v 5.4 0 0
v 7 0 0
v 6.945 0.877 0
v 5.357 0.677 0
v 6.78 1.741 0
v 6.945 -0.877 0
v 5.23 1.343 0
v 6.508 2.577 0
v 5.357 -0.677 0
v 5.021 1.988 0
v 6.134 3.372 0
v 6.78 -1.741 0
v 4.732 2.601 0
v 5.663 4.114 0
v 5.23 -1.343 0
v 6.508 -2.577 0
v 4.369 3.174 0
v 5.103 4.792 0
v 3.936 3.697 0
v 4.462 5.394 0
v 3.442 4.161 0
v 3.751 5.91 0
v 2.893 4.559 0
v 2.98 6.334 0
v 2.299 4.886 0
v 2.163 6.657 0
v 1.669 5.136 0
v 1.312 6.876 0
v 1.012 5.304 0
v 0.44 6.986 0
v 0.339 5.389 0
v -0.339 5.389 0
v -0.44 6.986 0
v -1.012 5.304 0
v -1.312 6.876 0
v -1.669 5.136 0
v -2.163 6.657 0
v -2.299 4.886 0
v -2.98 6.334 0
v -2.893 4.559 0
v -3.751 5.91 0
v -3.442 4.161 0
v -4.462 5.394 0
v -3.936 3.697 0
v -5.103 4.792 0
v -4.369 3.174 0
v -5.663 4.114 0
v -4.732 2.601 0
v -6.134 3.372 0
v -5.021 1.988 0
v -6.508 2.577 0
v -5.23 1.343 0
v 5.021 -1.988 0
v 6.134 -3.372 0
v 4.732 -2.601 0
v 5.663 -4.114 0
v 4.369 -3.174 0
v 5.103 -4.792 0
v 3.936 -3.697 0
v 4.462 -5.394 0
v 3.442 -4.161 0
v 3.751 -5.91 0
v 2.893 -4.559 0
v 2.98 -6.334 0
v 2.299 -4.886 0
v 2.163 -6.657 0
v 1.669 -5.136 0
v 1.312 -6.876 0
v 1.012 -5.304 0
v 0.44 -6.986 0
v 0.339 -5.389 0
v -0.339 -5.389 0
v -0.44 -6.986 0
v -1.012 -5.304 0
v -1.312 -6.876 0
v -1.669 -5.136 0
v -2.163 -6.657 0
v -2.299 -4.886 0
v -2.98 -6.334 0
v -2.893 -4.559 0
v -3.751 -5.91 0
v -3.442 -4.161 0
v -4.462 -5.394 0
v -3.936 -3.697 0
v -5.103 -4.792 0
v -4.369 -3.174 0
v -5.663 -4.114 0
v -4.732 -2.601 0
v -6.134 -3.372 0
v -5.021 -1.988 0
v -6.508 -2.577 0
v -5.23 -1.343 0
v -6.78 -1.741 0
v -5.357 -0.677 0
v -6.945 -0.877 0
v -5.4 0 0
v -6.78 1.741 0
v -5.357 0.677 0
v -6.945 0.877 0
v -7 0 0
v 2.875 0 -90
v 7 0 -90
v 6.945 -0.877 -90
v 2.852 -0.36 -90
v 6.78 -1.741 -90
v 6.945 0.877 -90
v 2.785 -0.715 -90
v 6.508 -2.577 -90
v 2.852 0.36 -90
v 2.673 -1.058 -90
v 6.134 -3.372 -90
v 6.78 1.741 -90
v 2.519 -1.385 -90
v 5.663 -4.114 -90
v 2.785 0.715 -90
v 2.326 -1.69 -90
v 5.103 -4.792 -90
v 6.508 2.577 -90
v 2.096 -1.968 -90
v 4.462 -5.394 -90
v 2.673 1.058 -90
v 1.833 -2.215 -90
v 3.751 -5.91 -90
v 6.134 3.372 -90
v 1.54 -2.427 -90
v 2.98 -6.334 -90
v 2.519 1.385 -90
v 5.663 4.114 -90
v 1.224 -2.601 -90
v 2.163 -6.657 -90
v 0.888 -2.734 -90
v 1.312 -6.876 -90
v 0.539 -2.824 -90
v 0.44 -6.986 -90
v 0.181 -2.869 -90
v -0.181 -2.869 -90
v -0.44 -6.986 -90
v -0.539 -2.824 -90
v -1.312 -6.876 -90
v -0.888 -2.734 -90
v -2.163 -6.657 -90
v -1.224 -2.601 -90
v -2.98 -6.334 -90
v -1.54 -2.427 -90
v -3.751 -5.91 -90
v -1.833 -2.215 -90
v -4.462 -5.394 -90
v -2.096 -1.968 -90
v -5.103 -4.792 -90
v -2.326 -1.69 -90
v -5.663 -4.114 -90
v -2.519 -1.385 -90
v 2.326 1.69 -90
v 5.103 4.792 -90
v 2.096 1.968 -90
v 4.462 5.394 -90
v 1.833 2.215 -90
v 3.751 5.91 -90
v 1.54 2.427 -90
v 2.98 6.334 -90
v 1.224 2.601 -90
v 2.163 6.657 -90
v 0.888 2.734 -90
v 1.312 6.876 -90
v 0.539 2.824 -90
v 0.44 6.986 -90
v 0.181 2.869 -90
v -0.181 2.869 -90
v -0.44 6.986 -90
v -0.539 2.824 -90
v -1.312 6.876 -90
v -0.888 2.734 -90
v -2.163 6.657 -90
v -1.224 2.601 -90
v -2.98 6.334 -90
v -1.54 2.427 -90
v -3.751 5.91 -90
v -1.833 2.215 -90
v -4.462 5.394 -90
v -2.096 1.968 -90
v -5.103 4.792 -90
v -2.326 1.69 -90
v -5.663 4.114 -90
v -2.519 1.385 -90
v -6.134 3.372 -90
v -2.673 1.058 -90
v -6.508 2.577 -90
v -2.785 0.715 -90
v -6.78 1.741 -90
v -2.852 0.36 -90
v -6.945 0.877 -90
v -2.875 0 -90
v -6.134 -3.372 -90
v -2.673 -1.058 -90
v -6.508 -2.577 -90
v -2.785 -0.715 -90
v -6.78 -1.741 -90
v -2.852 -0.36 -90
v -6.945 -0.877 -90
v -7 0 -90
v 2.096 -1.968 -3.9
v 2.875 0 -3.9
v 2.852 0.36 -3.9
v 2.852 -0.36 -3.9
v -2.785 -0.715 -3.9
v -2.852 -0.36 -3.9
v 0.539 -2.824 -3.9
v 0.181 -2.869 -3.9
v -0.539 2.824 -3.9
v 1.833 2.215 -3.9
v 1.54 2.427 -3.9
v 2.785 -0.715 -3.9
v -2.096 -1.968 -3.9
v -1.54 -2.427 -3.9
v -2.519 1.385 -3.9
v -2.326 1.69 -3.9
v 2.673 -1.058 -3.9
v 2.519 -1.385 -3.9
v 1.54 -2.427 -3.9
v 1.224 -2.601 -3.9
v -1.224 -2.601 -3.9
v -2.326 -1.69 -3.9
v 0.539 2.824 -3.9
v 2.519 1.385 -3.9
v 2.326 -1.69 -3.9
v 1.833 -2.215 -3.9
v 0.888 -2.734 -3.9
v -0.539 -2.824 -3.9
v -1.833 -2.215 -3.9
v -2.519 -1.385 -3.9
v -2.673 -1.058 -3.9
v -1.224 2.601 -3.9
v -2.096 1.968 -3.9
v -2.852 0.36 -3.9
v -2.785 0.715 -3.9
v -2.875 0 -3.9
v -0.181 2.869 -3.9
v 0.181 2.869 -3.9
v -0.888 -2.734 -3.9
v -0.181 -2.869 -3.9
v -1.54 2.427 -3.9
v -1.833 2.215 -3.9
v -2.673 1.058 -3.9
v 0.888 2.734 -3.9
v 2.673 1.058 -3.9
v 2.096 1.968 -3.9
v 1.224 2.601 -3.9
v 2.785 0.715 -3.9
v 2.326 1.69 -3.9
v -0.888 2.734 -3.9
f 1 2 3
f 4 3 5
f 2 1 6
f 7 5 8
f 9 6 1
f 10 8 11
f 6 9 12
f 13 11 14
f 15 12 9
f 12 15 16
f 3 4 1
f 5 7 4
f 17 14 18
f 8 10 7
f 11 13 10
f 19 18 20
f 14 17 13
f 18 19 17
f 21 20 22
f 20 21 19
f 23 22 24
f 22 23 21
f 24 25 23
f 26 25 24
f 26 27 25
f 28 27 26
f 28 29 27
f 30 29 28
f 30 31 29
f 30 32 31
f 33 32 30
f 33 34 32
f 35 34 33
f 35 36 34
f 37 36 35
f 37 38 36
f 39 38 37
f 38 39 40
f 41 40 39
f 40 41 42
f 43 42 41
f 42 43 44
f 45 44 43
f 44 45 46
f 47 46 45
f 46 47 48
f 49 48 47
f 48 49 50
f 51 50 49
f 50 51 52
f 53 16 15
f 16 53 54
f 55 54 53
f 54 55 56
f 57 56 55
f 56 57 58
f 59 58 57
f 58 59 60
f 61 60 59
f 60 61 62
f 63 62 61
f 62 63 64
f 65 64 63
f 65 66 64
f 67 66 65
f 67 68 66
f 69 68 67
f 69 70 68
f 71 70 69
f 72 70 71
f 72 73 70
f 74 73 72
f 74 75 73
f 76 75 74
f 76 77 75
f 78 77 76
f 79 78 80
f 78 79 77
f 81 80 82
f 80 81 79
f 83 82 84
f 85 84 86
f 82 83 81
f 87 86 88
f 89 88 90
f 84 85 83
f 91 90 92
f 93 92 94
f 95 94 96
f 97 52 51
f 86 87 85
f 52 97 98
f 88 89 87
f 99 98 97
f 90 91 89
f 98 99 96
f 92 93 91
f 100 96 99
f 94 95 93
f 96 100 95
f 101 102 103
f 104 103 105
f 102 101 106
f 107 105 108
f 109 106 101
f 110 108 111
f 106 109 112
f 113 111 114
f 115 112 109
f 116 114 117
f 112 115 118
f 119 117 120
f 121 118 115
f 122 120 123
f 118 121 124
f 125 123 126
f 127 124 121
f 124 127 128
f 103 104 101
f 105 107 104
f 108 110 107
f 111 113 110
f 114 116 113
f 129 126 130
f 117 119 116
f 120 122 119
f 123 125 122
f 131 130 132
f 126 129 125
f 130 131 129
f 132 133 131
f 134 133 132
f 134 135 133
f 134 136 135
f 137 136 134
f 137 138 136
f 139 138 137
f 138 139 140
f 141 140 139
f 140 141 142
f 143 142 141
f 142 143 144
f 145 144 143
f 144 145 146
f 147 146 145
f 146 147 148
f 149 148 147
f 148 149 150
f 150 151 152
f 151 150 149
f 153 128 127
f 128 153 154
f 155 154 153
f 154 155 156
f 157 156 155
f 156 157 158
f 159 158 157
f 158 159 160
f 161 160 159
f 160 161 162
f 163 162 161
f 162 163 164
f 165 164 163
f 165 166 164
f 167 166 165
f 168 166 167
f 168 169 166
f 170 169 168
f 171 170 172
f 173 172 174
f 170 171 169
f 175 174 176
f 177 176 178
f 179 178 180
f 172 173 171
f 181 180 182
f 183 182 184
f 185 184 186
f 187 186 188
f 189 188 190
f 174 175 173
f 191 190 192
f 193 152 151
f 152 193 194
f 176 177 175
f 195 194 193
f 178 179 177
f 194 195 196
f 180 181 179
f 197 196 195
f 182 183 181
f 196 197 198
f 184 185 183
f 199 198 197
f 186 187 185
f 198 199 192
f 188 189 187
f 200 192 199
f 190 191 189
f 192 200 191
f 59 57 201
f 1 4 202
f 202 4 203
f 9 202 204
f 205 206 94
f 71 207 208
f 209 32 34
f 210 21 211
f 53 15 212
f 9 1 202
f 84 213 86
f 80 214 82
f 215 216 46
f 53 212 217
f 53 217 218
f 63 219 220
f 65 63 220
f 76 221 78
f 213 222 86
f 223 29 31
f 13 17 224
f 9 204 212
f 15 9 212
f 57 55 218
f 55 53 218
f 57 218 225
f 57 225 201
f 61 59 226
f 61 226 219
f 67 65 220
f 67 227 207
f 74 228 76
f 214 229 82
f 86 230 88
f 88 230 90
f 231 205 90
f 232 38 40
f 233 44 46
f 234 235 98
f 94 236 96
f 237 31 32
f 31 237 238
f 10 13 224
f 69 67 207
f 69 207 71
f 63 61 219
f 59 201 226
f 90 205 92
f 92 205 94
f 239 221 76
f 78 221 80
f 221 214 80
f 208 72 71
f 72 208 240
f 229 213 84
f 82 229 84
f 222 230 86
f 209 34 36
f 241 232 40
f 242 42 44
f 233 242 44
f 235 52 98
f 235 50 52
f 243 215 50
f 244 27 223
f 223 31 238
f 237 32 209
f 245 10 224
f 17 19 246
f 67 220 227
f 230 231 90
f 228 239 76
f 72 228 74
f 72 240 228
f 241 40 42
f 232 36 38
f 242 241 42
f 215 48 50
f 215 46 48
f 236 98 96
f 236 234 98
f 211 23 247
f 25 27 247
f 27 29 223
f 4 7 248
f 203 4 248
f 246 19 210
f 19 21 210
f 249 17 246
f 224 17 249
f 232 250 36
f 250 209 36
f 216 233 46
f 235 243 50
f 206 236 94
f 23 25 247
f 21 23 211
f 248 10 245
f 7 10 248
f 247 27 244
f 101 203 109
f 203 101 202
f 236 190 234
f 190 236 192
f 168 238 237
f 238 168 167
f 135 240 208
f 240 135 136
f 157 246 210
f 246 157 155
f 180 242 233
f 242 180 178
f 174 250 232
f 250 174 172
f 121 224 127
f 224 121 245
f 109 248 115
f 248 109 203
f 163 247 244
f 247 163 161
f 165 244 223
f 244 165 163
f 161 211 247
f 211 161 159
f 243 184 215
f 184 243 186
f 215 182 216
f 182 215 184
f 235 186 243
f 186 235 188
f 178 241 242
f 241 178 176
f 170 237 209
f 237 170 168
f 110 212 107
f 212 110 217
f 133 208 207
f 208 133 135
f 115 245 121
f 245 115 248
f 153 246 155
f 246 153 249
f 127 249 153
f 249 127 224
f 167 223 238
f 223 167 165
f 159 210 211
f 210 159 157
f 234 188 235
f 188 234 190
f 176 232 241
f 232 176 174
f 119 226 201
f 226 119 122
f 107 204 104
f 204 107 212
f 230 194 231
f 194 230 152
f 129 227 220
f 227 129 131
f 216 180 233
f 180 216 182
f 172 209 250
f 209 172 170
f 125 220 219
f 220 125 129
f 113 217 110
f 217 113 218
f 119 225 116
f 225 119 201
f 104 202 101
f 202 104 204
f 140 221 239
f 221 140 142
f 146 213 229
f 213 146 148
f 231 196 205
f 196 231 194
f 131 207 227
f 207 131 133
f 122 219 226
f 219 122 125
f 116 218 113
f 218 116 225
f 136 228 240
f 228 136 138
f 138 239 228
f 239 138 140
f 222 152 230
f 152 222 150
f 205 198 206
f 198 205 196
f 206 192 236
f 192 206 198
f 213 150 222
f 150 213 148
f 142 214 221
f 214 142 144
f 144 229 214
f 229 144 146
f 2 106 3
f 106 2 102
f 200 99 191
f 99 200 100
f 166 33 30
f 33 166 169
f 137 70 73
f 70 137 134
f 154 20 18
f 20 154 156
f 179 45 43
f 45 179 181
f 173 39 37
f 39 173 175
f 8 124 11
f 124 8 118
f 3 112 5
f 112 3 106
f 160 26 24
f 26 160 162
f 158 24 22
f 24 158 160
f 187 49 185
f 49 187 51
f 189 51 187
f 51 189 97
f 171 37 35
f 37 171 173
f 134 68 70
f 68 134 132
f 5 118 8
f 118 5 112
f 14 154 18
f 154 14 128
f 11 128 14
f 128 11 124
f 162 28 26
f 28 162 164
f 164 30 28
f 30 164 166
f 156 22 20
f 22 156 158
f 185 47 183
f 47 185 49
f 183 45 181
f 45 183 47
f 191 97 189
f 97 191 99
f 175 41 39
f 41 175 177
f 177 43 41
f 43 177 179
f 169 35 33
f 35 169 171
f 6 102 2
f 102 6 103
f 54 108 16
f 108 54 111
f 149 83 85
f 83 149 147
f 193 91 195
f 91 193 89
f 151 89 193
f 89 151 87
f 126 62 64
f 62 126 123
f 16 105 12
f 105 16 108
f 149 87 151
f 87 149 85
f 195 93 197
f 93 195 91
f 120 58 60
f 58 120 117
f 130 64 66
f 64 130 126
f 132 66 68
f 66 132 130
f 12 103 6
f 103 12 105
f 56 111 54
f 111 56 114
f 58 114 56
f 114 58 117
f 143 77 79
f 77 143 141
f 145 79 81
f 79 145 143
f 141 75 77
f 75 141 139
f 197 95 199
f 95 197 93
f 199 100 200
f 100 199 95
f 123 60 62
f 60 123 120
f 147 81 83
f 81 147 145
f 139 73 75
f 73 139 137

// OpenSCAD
$fn = 50;


difference() {
	union() {
		translate(v = [0, 0, -90.0000000000]) {
			cylinder(h = 90, r = 7.0000000000);
		}
	}
	union() {
		translate(v = [0, 0, 0]) {
			rotate(a = [0, 0, 0]) {
				difference() {
					union() {
						#translate(v = [0, 0, -90.0000000000]) {
							cylinder(h = 90, r = 2.6000000000);
						}
						#translate(v = [0, 0, -3.9000000000]) {
							cylinder(h = 3.9000000000, r = 7.0000000000, r1 = 2.8750000000, r2 = 5.4000000000);
						}
						#translate(v = [0, 0, -90.0000000000]) {
							cylinder(h = 90, r = 2.8750000000);
						}
						#translate(v = [0, 0, -90.0000000000]) {
							cylinder(h = 90, r = 2.6000000000);
						}
					}
					union();
				}
			}
		}
	}
}
